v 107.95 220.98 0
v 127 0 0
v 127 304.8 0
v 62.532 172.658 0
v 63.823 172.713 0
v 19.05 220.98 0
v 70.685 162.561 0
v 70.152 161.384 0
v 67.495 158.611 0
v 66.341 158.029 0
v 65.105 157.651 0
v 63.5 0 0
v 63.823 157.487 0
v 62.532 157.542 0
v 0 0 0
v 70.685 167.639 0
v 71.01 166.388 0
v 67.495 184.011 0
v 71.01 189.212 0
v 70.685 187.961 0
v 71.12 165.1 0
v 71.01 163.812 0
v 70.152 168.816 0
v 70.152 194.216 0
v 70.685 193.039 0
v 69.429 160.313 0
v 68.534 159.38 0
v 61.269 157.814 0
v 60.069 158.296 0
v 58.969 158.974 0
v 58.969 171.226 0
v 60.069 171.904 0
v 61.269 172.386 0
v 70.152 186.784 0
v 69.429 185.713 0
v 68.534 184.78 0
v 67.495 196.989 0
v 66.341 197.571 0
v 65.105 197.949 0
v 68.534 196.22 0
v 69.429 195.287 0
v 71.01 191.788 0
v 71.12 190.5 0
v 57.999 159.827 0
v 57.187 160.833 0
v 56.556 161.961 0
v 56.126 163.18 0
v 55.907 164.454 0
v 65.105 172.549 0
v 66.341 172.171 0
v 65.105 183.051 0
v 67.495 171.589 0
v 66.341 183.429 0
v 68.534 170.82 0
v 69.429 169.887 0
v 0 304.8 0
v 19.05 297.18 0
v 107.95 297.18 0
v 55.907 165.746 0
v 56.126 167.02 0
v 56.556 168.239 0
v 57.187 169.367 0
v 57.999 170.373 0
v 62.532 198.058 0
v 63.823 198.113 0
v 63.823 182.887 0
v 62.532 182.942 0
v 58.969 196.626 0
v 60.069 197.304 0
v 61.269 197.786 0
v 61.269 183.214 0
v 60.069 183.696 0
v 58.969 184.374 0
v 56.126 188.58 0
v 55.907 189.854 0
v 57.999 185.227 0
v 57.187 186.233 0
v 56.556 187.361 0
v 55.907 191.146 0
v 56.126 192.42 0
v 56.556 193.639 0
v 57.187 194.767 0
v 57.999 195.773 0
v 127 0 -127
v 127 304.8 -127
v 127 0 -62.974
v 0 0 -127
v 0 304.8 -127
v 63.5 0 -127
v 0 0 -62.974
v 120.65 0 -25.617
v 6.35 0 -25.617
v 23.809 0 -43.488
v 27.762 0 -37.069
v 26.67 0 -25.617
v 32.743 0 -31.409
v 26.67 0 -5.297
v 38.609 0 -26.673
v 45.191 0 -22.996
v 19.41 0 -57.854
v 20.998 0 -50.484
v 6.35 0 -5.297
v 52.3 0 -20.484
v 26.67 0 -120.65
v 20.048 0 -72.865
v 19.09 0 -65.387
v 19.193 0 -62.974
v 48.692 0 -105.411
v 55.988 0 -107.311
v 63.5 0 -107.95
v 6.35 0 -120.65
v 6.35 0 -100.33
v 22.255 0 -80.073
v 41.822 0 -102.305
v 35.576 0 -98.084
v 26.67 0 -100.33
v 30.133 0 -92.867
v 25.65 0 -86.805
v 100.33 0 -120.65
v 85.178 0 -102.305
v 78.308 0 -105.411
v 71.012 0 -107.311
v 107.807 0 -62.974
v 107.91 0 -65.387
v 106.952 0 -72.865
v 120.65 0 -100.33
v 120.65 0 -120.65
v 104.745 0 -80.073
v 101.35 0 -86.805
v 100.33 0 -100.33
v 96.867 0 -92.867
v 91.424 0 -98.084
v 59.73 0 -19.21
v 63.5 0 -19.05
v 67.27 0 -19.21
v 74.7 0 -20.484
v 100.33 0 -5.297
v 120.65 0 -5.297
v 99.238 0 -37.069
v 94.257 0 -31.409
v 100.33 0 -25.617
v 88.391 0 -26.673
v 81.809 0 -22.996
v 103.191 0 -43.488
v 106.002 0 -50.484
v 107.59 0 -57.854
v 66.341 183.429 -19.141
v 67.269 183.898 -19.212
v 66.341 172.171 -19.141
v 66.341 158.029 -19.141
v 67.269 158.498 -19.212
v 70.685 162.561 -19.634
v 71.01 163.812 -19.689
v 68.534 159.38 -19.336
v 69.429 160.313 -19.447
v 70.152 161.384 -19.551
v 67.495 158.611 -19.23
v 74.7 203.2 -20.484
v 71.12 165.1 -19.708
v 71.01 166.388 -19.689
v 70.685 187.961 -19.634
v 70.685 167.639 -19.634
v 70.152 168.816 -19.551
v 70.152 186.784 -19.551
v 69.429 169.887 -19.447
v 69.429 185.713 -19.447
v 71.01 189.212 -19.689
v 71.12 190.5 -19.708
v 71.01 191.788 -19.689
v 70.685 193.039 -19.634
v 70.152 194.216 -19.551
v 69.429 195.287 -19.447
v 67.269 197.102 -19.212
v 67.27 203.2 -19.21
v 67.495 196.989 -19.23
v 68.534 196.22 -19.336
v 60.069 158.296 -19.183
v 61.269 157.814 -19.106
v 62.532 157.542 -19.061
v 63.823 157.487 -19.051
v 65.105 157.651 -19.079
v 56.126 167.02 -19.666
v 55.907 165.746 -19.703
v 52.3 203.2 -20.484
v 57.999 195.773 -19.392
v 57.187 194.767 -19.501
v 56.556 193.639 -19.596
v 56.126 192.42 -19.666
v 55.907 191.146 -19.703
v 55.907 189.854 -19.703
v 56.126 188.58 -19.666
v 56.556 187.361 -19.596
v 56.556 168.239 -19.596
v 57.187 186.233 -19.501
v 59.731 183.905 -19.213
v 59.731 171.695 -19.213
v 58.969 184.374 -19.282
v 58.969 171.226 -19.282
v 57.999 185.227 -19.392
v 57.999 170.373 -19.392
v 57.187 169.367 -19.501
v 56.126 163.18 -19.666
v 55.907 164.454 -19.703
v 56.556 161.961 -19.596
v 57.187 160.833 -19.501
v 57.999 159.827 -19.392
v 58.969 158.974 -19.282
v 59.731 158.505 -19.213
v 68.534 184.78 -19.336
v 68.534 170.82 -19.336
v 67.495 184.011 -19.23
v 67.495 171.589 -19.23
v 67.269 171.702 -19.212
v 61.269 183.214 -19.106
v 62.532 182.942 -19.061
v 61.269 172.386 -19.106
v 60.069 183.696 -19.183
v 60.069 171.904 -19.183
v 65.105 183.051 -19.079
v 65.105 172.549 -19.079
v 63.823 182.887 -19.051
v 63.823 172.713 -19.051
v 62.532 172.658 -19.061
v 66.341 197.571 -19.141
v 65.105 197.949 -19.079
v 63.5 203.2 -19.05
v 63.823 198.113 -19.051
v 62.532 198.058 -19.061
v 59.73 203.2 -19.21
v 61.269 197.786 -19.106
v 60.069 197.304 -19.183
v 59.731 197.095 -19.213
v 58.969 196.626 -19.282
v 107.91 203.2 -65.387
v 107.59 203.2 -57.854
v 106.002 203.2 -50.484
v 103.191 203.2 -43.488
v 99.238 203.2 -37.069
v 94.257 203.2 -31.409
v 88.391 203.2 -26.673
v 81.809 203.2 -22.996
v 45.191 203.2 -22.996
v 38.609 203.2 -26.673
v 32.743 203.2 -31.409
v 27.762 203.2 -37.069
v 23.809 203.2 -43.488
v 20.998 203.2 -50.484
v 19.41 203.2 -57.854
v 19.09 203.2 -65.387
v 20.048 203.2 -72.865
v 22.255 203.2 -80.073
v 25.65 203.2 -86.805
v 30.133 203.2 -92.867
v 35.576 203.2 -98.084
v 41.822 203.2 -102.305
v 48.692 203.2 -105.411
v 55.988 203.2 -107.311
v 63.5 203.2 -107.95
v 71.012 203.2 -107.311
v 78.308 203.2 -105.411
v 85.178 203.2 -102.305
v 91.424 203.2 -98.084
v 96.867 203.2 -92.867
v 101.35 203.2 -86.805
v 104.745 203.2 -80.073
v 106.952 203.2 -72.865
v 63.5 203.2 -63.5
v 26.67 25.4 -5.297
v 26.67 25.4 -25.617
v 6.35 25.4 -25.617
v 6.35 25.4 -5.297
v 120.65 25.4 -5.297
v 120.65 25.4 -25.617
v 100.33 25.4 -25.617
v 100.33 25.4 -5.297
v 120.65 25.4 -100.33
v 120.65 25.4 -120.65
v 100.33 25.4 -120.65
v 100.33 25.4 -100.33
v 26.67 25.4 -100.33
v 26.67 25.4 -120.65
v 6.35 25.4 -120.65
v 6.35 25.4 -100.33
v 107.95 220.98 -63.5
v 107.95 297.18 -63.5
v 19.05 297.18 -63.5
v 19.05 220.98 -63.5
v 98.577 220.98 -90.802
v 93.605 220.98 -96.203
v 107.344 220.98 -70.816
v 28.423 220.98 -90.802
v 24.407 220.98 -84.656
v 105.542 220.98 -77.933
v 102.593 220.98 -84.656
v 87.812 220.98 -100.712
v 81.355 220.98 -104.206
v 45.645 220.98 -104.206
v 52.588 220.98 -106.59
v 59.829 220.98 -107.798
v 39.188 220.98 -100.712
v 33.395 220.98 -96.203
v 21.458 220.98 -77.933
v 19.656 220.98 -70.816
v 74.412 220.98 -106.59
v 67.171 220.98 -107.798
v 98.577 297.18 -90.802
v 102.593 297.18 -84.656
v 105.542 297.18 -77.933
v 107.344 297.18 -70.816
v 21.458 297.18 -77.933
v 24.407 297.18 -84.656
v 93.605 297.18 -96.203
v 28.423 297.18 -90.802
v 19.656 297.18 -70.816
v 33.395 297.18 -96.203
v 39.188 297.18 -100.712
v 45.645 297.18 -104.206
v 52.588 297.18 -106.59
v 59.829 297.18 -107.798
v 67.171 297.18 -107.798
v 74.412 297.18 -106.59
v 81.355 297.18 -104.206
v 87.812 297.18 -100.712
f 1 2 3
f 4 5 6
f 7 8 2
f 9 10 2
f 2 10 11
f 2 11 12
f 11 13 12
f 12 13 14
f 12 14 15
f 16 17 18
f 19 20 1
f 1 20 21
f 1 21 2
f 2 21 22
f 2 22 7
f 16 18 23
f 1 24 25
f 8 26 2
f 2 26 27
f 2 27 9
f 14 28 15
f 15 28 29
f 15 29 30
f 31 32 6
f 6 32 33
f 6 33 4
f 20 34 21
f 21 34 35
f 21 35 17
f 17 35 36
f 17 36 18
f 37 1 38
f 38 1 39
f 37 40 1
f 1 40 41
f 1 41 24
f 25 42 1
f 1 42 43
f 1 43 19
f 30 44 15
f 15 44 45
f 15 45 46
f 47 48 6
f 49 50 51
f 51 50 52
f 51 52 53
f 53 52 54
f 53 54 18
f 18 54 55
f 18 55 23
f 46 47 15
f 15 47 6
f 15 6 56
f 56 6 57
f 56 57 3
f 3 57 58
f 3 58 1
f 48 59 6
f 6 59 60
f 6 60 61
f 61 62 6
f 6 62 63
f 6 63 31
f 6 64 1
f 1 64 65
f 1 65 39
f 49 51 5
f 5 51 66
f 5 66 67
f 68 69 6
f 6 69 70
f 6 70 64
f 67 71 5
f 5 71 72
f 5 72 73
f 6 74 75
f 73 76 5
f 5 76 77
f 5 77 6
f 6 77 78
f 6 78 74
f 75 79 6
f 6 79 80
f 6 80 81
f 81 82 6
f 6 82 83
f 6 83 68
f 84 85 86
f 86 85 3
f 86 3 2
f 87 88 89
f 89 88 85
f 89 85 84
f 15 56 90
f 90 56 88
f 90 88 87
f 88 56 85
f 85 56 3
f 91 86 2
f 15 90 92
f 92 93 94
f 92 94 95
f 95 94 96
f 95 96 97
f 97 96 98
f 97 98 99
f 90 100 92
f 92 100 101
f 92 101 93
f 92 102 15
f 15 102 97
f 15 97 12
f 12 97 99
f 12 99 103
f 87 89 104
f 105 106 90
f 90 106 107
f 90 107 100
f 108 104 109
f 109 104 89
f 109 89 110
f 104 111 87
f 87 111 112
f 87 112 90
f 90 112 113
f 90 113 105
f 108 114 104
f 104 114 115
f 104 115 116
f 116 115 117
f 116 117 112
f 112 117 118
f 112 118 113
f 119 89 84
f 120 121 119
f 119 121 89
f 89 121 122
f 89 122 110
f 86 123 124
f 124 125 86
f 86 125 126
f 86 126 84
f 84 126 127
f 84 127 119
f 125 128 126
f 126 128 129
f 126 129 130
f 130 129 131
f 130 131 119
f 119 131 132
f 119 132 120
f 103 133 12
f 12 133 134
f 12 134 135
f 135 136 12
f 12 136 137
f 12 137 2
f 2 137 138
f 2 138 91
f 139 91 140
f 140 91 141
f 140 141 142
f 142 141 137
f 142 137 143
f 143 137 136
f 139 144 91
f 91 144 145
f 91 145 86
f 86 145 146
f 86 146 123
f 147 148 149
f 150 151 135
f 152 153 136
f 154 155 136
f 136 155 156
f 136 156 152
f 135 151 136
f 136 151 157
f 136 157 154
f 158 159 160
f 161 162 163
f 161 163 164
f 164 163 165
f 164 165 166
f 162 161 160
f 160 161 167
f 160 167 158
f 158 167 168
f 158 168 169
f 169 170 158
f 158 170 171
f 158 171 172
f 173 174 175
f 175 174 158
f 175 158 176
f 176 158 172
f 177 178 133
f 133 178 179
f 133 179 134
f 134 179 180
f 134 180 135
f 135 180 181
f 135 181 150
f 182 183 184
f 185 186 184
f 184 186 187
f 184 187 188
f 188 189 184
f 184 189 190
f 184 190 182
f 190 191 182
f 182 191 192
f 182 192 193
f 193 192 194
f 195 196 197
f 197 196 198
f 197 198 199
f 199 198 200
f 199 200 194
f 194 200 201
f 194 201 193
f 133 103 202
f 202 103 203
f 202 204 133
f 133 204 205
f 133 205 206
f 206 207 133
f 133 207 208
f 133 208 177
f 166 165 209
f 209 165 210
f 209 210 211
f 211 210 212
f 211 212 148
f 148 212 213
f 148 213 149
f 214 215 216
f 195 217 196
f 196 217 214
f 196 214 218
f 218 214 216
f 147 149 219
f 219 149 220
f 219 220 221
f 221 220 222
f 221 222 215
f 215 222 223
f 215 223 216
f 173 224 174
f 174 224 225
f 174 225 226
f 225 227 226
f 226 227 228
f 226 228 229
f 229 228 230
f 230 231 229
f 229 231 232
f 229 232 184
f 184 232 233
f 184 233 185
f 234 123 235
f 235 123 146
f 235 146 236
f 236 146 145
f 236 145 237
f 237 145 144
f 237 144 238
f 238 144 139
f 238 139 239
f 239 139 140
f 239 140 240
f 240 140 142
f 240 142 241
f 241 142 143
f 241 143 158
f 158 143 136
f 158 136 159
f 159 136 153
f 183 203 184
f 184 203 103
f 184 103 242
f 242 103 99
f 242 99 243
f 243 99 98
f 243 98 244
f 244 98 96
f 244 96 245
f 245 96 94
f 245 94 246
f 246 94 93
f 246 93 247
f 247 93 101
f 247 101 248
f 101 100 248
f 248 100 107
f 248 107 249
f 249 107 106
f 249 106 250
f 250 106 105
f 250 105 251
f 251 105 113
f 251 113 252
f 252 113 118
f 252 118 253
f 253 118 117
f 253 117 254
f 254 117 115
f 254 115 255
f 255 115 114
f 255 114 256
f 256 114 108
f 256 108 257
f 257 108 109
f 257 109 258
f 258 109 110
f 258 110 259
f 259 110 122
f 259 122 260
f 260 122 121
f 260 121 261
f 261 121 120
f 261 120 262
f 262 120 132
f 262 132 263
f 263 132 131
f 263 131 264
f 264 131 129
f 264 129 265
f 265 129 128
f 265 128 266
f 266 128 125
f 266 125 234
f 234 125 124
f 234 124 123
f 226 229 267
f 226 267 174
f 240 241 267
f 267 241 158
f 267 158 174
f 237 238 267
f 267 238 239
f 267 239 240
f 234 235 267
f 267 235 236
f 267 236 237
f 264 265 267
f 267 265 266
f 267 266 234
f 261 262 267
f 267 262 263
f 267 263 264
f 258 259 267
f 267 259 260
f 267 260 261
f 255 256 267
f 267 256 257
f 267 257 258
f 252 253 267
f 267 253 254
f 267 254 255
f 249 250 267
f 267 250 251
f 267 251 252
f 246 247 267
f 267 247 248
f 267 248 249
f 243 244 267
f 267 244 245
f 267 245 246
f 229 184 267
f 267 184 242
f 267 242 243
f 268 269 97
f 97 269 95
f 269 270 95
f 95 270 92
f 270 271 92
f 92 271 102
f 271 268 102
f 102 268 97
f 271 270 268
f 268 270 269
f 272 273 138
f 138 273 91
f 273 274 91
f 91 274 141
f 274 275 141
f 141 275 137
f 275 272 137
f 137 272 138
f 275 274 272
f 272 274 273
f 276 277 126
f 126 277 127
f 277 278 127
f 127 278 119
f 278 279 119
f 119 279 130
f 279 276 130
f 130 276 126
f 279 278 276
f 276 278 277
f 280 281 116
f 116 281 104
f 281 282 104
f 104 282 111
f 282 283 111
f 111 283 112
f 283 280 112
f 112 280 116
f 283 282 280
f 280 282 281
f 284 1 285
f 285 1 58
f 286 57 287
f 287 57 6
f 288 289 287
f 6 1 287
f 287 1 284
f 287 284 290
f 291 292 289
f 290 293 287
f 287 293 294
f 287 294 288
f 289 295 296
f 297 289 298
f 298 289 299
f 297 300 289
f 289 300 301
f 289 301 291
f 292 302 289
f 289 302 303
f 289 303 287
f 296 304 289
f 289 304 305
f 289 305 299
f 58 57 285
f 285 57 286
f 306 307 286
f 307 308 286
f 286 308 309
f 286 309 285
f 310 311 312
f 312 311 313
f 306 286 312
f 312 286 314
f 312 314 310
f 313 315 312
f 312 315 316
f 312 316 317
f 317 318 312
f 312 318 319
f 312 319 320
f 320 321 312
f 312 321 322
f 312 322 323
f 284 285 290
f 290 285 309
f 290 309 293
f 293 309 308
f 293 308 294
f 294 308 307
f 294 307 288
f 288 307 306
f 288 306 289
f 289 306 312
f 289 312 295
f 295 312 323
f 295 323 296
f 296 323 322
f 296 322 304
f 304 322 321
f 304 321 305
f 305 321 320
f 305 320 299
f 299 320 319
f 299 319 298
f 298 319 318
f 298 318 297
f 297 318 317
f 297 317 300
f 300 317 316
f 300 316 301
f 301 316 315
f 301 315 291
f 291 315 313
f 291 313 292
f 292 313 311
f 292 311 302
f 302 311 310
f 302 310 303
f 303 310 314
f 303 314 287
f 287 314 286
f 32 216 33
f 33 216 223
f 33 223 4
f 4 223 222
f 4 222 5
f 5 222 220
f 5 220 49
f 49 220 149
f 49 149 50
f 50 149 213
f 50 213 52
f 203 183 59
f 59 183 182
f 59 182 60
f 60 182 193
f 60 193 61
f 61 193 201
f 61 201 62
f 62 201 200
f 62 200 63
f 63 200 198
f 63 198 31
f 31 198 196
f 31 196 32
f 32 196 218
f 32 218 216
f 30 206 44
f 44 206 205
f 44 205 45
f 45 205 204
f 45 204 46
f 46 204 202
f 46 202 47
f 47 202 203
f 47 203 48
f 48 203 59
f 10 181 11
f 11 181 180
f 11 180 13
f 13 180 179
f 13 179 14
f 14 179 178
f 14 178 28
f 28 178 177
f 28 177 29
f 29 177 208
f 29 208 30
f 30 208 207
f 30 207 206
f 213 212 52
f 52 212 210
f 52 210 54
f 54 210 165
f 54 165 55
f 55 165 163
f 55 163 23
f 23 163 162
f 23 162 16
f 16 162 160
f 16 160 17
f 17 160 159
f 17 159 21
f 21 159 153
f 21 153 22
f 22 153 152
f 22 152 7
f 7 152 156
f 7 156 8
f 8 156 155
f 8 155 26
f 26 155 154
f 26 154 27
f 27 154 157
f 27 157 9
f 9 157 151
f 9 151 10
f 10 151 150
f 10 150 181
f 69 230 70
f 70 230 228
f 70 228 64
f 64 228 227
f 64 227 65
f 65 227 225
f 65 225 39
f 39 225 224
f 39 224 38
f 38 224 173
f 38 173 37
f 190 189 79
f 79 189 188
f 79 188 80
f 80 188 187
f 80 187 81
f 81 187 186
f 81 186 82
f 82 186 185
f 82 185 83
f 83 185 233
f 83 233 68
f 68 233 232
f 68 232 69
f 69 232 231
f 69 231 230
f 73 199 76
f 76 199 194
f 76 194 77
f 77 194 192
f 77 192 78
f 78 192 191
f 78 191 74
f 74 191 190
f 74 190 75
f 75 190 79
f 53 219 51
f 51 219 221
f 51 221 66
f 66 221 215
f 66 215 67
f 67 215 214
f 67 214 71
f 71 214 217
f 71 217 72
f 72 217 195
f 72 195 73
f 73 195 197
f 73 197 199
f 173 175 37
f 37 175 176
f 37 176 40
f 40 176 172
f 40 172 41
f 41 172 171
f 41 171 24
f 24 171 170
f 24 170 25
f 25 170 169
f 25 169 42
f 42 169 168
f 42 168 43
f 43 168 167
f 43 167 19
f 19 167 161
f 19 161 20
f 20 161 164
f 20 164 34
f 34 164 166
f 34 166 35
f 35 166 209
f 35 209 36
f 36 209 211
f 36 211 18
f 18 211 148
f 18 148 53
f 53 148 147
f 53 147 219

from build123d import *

# Parameters (mm, degrees)
SKETCH5_W           = 127
SKETCH5_H           = 127
BOSS_EXTRUDE1_DEPTH = 304.8
SKETCH6_R           = 44.45
CUT_EXTRUDE1_DEPTH  = 203.2
SKETCH5_3_W         = 20.32
SKETCH5_3_H         = 20.32
CUT_EXTRUDE2_DEPTH  = 25.4
CUT_EXTRUDE3_START  = -76.2
CUT_EXTRUDE3_DEPTH  = 76.2
SKETCH9_R           = 7.62
CUT_EXTRUDE4_DEPTH  = 56.642


with BuildPart() as part:
    # Sketch5 → Boss-Extrude1 (new body)
    with BuildSketch(Plane(origin=(0, 0, 0), x_dir=(1, 0, 0), z_dir=(0, 1, 0))):
        with Locations((63.5, 63.5)):
            Rectangle(SKETCH5_W, SKETCH5_H)
    extrude(amount=BOSS_EXTRUDE1_DEPTH)

    # Sketch6 → Cut-Extrude1 (cut)
    with BuildSketch(Plane(origin=(0, 0, 0), x_dir=(1, 0, 0), z_dir=(0, 1, 0))):
        with Locations((63.5, 63.5)):
            Circle(SKETCH6_R)
    extrude(amount=CUT_EXTRUDE1_DEPTH, mode=Mode.SUBTRACT)

    # Sketch5<3> → Cut-Extrude2 (cut)
    with BuildSketch(Plane(origin=(0, 0, 0), x_dir=(1, 0, 0), z_dir=(0, 1, 0))):
        with Locations((110.49, 15.457317153)):
            Rectangle(SKETCH5_3_W, SKETCH5_3_H)
        with Locations((16.51, 15.457317153)):
            Rectangle(SKETCH5_3_W, SKETCH5_3_H)
        with Locations((110.49, 110.49)):
            Rectangle(SKETCH5_3_W, SKETCH5_3_H)
        with Locations((16.51, 110.49)):
            Rectangle(SKETCH5_3_W, SKETCH5_3_H)
    extrude(amount=CUT_EXTRUDE2_DEPTH, mode=Mode.SUBTRACT)

    # Sketch7 → Cut-Extrude3 (cut)
    with BuildSketch(Plane(origin=(0, 297.18, 0), x_dir=(1, 0, 0), z_dir=(0, 1, 0)).offset(CUT_EXTRUDE3_START)):
        with BuildLine():
            Line((107.95, 63.5), (107.95, -124.596764807))
            Line((107.95, -124.596764807), (19.05, -124.596764807))
            Line((19.05, -124.596764807), (19.05, 63.5))
            ThreePointArc((19.05, 63.5), (63.5, 107.95), (107.95, 63.5))
        make_face()
    extrude(amount=CUT_EXTRUDE3_DEPTH, mode=Mode.SUBTRACT)

    # Sketch9 → Cut-Extrude4 (cut)
    with BuildSketch(Plane.XY):
        with Locations((63.5, 190.5)):
            Circle(SKETCH9_R)
        with Locations((63.5, 165.1)):
            Circle(SKETCH9_R)
    extrude(amount=-CUT_EXTRUDE4_DEPTH, mode=Mode.SUBTRACT)


solid = part.part
